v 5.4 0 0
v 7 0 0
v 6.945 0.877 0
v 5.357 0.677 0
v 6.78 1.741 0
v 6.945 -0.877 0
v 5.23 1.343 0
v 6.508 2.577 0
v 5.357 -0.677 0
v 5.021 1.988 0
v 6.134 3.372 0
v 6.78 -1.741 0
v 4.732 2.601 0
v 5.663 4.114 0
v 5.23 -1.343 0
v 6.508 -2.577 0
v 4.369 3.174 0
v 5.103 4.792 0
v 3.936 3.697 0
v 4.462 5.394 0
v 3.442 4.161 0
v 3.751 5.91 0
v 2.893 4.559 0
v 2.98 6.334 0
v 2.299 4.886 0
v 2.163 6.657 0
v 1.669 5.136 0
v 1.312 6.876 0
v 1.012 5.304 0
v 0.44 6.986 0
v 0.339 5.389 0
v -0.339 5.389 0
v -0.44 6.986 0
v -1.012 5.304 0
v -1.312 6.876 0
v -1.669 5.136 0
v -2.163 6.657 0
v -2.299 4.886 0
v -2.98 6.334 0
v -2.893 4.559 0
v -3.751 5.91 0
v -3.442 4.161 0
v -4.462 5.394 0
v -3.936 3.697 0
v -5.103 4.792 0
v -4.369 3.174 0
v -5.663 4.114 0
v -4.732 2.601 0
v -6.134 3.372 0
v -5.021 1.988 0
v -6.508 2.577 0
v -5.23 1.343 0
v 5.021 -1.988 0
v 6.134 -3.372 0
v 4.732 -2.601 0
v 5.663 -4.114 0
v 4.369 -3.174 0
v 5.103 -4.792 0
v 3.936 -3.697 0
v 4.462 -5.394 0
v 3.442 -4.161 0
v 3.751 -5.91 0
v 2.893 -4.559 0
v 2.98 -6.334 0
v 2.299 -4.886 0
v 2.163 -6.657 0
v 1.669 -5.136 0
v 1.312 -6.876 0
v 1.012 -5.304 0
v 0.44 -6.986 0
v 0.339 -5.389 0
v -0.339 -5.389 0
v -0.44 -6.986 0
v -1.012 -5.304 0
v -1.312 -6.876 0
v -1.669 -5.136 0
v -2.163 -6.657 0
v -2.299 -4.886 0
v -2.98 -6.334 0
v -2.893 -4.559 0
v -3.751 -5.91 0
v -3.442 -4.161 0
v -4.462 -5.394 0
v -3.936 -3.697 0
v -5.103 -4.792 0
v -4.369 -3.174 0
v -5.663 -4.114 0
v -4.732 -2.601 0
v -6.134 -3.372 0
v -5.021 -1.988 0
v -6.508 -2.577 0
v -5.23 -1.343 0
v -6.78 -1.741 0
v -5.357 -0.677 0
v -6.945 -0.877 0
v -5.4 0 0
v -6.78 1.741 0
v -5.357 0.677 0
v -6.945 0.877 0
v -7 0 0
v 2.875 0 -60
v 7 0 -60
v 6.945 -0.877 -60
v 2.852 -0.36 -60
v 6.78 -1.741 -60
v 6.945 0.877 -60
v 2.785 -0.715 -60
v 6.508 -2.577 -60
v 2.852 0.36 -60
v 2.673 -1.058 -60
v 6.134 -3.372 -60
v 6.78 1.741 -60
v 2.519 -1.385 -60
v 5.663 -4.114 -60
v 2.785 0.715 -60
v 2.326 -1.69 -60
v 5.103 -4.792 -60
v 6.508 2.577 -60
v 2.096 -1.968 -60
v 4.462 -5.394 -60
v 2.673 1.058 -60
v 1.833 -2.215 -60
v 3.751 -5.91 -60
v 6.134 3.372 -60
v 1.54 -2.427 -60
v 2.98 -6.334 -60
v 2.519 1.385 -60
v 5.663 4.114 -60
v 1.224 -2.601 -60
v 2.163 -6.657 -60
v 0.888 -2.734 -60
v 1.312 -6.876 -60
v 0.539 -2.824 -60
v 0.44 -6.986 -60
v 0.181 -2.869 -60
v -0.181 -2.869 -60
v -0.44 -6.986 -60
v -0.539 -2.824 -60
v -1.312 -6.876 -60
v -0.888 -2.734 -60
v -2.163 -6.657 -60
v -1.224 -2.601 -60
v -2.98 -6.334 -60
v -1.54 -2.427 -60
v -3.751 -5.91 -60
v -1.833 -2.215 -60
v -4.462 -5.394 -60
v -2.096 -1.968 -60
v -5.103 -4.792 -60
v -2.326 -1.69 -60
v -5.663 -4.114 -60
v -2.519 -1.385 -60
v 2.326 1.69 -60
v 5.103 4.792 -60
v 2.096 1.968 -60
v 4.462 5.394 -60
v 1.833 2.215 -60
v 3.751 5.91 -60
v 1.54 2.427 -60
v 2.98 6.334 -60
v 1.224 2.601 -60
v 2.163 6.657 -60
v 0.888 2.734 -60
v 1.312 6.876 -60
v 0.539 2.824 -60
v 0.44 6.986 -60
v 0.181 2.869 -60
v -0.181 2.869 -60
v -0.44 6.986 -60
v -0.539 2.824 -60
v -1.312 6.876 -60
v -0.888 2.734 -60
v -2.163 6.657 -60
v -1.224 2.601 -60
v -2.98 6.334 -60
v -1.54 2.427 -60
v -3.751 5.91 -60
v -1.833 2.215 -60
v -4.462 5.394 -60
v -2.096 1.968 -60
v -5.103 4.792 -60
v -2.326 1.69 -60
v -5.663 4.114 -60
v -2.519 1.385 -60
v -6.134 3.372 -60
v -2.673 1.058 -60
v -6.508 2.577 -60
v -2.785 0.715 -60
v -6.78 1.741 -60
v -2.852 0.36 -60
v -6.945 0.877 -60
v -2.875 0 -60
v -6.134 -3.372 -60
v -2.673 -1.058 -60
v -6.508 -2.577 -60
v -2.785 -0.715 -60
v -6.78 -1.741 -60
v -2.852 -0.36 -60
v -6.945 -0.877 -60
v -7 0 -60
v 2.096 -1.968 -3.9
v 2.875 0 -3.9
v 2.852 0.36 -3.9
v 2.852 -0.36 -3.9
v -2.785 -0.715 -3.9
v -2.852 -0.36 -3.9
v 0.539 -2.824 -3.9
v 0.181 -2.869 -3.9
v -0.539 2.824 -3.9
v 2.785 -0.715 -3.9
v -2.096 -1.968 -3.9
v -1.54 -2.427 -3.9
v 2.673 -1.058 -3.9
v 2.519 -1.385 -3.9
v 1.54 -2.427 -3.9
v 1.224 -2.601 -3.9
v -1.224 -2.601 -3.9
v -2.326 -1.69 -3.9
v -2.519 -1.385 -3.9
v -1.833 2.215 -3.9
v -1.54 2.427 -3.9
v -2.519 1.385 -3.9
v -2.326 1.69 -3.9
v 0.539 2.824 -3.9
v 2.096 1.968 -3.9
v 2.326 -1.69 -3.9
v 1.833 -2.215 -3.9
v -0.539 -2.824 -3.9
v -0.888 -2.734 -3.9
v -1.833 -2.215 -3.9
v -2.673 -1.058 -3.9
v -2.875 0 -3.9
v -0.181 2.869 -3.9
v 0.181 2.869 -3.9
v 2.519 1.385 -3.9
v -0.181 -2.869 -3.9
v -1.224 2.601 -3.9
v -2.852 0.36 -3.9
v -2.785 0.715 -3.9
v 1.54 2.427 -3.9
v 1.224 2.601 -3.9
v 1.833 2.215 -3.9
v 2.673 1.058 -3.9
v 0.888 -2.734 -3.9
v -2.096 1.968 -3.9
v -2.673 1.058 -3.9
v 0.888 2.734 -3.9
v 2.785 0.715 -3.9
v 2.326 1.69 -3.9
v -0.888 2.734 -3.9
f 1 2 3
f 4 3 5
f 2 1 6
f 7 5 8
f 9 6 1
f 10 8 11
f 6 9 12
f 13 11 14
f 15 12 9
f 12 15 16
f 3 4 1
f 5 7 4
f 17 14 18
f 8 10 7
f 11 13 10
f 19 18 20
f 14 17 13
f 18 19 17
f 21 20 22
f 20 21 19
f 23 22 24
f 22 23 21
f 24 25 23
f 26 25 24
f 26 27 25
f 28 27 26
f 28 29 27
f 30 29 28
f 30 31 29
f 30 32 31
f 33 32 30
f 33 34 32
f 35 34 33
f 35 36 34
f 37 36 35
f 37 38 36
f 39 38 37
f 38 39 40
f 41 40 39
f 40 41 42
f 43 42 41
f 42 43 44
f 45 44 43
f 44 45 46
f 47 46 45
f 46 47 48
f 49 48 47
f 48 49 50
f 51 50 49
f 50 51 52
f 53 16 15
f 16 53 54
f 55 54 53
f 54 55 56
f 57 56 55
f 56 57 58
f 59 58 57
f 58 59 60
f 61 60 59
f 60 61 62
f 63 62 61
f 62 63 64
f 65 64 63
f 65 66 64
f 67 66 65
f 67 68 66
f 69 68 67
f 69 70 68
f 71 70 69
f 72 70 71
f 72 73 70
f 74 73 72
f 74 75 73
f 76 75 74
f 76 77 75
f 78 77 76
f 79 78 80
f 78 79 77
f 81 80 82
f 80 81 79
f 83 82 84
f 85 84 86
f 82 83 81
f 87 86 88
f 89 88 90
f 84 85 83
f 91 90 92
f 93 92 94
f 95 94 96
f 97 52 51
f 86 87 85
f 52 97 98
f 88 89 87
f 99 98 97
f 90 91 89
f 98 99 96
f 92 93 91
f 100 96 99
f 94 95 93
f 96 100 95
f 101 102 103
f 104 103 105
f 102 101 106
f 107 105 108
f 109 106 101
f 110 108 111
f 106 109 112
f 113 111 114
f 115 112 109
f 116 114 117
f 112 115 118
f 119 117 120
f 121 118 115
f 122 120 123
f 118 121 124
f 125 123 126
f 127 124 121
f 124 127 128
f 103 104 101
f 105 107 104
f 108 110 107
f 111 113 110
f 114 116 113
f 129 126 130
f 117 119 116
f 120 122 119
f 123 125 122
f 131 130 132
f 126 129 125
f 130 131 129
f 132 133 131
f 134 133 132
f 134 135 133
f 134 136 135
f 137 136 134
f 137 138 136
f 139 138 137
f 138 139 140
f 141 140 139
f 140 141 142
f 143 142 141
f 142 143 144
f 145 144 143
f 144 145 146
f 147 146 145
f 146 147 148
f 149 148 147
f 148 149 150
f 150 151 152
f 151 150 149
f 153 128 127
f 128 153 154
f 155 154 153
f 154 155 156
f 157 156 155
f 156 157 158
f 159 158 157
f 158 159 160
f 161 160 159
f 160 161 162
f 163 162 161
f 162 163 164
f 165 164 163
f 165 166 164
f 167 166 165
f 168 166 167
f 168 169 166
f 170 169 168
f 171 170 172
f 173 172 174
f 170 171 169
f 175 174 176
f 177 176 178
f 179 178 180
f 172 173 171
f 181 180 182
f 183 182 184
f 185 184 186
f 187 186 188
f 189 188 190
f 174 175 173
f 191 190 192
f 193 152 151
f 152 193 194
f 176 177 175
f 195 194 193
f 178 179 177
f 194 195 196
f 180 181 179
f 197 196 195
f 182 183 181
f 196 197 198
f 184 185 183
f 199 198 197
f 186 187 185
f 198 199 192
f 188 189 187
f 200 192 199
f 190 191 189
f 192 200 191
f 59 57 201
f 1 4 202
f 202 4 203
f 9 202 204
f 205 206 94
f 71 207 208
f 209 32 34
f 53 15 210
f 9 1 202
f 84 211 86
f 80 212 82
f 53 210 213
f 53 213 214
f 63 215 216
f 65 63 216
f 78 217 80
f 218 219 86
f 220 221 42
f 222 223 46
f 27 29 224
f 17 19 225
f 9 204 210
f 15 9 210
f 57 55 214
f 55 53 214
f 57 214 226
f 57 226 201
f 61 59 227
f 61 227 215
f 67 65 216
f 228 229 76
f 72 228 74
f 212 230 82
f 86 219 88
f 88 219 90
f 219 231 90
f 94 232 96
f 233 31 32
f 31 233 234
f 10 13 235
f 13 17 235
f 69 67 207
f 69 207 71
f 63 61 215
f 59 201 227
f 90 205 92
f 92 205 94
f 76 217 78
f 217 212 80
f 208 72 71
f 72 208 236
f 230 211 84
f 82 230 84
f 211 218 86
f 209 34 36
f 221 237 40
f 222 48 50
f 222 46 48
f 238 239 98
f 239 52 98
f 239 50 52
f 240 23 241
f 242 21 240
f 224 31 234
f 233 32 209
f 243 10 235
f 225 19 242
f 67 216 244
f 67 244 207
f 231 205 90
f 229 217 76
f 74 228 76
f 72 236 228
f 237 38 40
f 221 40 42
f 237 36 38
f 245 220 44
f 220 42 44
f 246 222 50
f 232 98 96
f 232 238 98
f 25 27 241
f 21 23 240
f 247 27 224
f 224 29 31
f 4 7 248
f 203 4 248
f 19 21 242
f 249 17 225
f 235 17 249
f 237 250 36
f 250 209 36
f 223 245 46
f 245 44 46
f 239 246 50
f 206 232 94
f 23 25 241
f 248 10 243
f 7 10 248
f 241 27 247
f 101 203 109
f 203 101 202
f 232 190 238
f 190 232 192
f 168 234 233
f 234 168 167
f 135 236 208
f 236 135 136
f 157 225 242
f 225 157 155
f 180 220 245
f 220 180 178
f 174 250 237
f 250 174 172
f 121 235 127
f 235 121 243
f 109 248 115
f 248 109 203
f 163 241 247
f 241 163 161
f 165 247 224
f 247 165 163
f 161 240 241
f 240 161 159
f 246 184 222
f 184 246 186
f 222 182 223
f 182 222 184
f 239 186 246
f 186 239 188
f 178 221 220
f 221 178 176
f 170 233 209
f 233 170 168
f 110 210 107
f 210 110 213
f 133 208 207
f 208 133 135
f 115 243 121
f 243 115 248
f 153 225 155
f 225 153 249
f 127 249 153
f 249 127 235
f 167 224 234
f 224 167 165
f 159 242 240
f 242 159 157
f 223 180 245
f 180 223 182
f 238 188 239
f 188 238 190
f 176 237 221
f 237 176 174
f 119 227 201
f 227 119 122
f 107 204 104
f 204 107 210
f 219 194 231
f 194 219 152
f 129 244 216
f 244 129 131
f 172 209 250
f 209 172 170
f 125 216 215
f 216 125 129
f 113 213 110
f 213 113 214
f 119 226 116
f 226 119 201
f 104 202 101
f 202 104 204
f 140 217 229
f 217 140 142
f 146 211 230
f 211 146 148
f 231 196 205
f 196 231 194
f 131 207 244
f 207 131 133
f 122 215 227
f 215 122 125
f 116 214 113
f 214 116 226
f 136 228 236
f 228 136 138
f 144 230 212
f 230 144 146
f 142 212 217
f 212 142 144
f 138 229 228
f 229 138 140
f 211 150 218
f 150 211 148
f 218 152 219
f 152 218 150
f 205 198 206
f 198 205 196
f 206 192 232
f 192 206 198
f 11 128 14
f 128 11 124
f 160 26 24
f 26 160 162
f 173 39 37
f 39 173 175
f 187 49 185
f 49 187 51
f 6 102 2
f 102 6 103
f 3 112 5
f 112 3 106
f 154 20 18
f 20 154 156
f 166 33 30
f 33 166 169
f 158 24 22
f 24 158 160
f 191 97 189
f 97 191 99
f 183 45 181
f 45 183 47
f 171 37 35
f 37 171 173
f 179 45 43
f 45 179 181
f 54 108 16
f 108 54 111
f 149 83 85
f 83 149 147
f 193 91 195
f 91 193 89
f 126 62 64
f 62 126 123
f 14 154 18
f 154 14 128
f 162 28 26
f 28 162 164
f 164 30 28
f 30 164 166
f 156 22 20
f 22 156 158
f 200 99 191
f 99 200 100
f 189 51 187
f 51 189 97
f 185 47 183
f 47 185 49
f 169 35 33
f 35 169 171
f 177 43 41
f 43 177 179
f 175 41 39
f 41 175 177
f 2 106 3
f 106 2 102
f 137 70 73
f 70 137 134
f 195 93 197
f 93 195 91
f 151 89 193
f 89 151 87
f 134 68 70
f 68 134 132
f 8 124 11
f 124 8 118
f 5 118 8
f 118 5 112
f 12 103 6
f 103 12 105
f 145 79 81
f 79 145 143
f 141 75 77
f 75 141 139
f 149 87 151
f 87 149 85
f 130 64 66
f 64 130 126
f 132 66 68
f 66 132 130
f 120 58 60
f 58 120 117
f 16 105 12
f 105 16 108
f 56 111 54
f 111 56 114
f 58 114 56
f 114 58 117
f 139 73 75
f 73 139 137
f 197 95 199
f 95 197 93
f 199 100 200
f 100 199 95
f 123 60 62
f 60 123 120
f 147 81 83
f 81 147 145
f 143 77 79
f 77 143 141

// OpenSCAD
$fn = 50;


difference() {
	union() {
		translate(v = [0, 0, -60.0000000000]) {
			cylinder(h = 60, r = 7.0000000000);
		}
	}
	union() {
		translate(v = [0, 0, 0]) {
			rotate(a = [0, 0, 0]) {
				difference() {
					union() {
						#translate(v = [0, 0, -60.0000000000]) {
							cylinder(h = 60, r = 2.6000000000);
						}
						#translate(v = [0, 0, -3.9000000000]) {
							cylinder(h = 3.9000000000, r = 7.0000000000, r1 = 2.8750000000, r2 = 5.4000000000);
						}
						#translate(v = [0, 0, -60.0000000000]) {
							cylinder(h = 60, r = 2.8750000000);
						}
						#translate(v = [0, 0, -60.0000000000]) {
							cylinder(h = 60, r = 2.6000000000);
						}
					}
					union();
				}
			}
		}
	}
}
